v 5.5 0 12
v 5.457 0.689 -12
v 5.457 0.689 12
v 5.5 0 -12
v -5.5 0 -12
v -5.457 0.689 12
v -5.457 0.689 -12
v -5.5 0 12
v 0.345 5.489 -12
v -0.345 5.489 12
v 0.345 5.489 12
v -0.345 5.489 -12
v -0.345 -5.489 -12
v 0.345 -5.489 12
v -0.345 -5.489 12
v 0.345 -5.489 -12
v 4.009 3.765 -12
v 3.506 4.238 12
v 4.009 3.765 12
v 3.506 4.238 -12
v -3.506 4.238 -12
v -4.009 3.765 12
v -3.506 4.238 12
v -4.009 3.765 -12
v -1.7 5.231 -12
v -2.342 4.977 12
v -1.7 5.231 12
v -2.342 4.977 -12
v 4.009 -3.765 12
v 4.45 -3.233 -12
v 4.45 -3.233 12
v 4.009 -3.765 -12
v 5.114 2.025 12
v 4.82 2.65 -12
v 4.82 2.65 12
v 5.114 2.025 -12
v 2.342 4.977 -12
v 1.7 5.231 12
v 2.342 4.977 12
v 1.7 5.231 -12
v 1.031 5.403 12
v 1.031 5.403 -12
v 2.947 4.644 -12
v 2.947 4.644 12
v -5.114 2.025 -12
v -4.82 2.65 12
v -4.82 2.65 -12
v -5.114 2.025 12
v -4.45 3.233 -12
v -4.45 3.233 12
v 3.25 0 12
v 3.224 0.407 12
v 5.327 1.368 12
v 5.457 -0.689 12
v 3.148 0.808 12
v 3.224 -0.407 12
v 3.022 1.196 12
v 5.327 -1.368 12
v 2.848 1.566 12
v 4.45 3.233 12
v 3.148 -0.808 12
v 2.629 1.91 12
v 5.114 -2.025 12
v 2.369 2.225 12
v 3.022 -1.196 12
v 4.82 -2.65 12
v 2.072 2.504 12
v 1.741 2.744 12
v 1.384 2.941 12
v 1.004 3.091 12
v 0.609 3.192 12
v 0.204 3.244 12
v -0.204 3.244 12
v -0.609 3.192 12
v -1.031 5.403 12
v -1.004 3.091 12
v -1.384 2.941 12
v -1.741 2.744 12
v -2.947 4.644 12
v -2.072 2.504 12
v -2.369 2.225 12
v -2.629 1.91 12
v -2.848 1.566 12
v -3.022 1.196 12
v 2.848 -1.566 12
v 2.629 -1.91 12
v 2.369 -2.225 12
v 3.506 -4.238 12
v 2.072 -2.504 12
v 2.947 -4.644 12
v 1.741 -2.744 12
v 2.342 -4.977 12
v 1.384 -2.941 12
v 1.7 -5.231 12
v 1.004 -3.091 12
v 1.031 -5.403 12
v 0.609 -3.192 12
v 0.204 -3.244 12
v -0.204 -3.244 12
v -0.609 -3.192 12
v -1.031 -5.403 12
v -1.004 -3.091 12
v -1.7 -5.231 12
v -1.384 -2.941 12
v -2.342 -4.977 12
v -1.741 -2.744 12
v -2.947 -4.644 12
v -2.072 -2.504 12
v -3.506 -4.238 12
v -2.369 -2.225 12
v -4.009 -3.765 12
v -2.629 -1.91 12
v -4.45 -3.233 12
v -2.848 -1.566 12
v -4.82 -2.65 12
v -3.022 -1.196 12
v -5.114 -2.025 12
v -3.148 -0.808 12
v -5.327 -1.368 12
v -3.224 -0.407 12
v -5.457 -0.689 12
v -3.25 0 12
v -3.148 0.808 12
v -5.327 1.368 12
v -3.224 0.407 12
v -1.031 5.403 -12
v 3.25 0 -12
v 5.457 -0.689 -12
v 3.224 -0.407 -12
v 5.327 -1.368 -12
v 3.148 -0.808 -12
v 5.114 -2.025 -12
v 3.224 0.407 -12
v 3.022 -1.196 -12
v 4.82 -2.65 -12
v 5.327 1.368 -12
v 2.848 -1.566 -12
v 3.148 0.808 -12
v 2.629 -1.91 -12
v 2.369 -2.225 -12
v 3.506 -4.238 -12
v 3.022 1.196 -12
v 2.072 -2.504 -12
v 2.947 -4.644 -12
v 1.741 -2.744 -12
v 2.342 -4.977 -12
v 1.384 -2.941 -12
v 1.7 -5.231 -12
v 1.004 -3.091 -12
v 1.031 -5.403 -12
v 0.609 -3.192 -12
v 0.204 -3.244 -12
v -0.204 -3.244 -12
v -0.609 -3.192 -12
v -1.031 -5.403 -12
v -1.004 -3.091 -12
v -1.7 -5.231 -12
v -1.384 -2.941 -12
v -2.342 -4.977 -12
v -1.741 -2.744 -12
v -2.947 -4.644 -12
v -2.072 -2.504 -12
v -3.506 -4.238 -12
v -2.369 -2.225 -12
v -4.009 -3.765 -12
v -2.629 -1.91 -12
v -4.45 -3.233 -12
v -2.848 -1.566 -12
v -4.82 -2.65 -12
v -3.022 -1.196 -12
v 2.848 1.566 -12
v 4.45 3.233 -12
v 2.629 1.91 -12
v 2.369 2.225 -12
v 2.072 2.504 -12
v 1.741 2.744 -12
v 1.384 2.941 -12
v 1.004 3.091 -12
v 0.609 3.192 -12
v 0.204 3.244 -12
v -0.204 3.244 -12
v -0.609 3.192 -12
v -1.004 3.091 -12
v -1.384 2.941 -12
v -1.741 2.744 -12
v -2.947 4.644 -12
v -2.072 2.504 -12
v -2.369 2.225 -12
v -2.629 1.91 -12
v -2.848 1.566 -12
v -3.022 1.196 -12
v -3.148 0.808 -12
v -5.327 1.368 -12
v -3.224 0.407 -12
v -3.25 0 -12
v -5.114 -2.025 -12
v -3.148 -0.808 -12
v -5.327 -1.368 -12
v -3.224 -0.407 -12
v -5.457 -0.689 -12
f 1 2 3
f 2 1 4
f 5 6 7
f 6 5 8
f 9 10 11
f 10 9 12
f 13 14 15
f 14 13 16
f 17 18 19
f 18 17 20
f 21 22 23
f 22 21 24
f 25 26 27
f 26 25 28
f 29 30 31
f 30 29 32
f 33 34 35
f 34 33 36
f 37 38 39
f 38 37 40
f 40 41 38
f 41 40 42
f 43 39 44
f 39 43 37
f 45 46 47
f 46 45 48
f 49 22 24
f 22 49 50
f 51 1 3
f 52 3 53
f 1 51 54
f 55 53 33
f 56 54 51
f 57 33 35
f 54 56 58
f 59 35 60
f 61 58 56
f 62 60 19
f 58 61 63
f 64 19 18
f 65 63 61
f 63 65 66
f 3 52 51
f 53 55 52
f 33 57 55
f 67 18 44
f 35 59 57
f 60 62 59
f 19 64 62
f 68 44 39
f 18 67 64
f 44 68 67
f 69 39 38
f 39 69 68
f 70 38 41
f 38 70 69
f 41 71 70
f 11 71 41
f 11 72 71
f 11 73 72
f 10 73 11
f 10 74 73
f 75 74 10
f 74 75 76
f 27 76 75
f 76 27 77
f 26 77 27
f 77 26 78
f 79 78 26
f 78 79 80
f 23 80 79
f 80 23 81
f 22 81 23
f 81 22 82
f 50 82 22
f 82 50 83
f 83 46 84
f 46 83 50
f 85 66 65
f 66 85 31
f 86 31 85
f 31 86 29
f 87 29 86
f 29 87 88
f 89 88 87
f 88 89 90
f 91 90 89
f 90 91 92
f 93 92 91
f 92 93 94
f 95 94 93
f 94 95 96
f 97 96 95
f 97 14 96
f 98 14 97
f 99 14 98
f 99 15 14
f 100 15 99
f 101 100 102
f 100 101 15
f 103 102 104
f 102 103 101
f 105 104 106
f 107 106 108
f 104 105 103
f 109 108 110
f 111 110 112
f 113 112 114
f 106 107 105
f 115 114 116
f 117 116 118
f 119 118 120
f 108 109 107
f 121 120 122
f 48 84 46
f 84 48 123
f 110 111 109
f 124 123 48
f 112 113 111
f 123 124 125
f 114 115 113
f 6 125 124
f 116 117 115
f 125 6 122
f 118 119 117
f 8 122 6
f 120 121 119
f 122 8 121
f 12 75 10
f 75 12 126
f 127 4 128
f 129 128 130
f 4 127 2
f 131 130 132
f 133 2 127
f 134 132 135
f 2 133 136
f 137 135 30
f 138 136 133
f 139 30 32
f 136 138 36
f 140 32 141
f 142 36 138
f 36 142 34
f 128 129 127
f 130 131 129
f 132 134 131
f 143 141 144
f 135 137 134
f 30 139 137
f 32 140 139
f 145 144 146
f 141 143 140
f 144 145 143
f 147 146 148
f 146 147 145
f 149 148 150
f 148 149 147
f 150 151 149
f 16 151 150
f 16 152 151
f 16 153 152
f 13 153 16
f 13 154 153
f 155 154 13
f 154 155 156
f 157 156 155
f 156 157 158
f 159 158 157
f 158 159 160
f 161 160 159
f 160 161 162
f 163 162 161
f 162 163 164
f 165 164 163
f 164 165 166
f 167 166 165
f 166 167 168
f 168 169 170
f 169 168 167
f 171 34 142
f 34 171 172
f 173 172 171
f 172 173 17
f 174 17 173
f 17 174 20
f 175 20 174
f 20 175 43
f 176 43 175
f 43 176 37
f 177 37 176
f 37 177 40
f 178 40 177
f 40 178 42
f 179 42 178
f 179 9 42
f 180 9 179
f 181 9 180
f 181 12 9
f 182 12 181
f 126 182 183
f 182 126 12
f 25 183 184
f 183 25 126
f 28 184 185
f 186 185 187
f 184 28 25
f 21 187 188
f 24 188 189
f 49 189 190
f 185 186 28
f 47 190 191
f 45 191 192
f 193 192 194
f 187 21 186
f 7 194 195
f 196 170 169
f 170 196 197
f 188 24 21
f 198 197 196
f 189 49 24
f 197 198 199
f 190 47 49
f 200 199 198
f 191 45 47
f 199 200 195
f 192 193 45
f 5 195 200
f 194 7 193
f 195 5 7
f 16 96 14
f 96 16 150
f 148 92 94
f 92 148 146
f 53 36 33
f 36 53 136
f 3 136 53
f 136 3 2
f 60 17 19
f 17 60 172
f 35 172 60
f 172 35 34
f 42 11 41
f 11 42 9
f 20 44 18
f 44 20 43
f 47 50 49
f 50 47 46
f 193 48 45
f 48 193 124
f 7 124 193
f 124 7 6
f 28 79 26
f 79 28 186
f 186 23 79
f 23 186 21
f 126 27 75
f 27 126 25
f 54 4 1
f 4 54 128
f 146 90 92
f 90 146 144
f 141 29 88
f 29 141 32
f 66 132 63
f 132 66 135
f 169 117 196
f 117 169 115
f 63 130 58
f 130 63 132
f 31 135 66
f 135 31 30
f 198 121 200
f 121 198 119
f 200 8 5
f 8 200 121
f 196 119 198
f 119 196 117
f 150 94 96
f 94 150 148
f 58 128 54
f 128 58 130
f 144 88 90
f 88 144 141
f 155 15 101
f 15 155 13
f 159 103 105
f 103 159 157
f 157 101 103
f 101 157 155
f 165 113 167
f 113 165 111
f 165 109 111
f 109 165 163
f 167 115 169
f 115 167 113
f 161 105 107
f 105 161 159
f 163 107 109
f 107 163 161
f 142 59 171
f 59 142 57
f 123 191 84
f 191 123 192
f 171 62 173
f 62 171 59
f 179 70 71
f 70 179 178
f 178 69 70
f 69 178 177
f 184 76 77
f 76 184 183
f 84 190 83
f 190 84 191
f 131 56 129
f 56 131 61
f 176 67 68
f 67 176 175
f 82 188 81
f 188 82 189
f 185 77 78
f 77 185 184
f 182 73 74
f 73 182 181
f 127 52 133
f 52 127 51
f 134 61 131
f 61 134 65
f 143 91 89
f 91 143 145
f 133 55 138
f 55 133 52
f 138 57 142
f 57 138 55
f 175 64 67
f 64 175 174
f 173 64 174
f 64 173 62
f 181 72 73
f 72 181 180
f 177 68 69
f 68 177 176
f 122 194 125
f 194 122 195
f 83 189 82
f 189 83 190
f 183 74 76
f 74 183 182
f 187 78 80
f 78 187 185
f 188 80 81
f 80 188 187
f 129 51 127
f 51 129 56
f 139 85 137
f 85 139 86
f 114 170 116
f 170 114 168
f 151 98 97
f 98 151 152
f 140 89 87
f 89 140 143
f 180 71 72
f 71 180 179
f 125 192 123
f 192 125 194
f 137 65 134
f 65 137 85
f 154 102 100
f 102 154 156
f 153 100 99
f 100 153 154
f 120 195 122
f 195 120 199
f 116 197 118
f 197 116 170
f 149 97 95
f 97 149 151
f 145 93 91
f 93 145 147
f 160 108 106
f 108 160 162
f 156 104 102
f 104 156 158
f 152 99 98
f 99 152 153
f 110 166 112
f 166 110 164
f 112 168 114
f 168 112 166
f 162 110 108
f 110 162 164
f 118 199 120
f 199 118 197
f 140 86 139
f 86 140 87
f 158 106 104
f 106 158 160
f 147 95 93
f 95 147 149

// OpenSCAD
$fn = 50;


difference() {
	union() {
		translate(v = [0, 0, -12.0000000000]) {
			cylinder(h = 24, r = 5.5000000000);
		}
	}
	union() {
		translate(v = [0, 0, -100.0000000000]) {
			cylinder(h = 200, r = 3.2500000000);
		}
	}
}
